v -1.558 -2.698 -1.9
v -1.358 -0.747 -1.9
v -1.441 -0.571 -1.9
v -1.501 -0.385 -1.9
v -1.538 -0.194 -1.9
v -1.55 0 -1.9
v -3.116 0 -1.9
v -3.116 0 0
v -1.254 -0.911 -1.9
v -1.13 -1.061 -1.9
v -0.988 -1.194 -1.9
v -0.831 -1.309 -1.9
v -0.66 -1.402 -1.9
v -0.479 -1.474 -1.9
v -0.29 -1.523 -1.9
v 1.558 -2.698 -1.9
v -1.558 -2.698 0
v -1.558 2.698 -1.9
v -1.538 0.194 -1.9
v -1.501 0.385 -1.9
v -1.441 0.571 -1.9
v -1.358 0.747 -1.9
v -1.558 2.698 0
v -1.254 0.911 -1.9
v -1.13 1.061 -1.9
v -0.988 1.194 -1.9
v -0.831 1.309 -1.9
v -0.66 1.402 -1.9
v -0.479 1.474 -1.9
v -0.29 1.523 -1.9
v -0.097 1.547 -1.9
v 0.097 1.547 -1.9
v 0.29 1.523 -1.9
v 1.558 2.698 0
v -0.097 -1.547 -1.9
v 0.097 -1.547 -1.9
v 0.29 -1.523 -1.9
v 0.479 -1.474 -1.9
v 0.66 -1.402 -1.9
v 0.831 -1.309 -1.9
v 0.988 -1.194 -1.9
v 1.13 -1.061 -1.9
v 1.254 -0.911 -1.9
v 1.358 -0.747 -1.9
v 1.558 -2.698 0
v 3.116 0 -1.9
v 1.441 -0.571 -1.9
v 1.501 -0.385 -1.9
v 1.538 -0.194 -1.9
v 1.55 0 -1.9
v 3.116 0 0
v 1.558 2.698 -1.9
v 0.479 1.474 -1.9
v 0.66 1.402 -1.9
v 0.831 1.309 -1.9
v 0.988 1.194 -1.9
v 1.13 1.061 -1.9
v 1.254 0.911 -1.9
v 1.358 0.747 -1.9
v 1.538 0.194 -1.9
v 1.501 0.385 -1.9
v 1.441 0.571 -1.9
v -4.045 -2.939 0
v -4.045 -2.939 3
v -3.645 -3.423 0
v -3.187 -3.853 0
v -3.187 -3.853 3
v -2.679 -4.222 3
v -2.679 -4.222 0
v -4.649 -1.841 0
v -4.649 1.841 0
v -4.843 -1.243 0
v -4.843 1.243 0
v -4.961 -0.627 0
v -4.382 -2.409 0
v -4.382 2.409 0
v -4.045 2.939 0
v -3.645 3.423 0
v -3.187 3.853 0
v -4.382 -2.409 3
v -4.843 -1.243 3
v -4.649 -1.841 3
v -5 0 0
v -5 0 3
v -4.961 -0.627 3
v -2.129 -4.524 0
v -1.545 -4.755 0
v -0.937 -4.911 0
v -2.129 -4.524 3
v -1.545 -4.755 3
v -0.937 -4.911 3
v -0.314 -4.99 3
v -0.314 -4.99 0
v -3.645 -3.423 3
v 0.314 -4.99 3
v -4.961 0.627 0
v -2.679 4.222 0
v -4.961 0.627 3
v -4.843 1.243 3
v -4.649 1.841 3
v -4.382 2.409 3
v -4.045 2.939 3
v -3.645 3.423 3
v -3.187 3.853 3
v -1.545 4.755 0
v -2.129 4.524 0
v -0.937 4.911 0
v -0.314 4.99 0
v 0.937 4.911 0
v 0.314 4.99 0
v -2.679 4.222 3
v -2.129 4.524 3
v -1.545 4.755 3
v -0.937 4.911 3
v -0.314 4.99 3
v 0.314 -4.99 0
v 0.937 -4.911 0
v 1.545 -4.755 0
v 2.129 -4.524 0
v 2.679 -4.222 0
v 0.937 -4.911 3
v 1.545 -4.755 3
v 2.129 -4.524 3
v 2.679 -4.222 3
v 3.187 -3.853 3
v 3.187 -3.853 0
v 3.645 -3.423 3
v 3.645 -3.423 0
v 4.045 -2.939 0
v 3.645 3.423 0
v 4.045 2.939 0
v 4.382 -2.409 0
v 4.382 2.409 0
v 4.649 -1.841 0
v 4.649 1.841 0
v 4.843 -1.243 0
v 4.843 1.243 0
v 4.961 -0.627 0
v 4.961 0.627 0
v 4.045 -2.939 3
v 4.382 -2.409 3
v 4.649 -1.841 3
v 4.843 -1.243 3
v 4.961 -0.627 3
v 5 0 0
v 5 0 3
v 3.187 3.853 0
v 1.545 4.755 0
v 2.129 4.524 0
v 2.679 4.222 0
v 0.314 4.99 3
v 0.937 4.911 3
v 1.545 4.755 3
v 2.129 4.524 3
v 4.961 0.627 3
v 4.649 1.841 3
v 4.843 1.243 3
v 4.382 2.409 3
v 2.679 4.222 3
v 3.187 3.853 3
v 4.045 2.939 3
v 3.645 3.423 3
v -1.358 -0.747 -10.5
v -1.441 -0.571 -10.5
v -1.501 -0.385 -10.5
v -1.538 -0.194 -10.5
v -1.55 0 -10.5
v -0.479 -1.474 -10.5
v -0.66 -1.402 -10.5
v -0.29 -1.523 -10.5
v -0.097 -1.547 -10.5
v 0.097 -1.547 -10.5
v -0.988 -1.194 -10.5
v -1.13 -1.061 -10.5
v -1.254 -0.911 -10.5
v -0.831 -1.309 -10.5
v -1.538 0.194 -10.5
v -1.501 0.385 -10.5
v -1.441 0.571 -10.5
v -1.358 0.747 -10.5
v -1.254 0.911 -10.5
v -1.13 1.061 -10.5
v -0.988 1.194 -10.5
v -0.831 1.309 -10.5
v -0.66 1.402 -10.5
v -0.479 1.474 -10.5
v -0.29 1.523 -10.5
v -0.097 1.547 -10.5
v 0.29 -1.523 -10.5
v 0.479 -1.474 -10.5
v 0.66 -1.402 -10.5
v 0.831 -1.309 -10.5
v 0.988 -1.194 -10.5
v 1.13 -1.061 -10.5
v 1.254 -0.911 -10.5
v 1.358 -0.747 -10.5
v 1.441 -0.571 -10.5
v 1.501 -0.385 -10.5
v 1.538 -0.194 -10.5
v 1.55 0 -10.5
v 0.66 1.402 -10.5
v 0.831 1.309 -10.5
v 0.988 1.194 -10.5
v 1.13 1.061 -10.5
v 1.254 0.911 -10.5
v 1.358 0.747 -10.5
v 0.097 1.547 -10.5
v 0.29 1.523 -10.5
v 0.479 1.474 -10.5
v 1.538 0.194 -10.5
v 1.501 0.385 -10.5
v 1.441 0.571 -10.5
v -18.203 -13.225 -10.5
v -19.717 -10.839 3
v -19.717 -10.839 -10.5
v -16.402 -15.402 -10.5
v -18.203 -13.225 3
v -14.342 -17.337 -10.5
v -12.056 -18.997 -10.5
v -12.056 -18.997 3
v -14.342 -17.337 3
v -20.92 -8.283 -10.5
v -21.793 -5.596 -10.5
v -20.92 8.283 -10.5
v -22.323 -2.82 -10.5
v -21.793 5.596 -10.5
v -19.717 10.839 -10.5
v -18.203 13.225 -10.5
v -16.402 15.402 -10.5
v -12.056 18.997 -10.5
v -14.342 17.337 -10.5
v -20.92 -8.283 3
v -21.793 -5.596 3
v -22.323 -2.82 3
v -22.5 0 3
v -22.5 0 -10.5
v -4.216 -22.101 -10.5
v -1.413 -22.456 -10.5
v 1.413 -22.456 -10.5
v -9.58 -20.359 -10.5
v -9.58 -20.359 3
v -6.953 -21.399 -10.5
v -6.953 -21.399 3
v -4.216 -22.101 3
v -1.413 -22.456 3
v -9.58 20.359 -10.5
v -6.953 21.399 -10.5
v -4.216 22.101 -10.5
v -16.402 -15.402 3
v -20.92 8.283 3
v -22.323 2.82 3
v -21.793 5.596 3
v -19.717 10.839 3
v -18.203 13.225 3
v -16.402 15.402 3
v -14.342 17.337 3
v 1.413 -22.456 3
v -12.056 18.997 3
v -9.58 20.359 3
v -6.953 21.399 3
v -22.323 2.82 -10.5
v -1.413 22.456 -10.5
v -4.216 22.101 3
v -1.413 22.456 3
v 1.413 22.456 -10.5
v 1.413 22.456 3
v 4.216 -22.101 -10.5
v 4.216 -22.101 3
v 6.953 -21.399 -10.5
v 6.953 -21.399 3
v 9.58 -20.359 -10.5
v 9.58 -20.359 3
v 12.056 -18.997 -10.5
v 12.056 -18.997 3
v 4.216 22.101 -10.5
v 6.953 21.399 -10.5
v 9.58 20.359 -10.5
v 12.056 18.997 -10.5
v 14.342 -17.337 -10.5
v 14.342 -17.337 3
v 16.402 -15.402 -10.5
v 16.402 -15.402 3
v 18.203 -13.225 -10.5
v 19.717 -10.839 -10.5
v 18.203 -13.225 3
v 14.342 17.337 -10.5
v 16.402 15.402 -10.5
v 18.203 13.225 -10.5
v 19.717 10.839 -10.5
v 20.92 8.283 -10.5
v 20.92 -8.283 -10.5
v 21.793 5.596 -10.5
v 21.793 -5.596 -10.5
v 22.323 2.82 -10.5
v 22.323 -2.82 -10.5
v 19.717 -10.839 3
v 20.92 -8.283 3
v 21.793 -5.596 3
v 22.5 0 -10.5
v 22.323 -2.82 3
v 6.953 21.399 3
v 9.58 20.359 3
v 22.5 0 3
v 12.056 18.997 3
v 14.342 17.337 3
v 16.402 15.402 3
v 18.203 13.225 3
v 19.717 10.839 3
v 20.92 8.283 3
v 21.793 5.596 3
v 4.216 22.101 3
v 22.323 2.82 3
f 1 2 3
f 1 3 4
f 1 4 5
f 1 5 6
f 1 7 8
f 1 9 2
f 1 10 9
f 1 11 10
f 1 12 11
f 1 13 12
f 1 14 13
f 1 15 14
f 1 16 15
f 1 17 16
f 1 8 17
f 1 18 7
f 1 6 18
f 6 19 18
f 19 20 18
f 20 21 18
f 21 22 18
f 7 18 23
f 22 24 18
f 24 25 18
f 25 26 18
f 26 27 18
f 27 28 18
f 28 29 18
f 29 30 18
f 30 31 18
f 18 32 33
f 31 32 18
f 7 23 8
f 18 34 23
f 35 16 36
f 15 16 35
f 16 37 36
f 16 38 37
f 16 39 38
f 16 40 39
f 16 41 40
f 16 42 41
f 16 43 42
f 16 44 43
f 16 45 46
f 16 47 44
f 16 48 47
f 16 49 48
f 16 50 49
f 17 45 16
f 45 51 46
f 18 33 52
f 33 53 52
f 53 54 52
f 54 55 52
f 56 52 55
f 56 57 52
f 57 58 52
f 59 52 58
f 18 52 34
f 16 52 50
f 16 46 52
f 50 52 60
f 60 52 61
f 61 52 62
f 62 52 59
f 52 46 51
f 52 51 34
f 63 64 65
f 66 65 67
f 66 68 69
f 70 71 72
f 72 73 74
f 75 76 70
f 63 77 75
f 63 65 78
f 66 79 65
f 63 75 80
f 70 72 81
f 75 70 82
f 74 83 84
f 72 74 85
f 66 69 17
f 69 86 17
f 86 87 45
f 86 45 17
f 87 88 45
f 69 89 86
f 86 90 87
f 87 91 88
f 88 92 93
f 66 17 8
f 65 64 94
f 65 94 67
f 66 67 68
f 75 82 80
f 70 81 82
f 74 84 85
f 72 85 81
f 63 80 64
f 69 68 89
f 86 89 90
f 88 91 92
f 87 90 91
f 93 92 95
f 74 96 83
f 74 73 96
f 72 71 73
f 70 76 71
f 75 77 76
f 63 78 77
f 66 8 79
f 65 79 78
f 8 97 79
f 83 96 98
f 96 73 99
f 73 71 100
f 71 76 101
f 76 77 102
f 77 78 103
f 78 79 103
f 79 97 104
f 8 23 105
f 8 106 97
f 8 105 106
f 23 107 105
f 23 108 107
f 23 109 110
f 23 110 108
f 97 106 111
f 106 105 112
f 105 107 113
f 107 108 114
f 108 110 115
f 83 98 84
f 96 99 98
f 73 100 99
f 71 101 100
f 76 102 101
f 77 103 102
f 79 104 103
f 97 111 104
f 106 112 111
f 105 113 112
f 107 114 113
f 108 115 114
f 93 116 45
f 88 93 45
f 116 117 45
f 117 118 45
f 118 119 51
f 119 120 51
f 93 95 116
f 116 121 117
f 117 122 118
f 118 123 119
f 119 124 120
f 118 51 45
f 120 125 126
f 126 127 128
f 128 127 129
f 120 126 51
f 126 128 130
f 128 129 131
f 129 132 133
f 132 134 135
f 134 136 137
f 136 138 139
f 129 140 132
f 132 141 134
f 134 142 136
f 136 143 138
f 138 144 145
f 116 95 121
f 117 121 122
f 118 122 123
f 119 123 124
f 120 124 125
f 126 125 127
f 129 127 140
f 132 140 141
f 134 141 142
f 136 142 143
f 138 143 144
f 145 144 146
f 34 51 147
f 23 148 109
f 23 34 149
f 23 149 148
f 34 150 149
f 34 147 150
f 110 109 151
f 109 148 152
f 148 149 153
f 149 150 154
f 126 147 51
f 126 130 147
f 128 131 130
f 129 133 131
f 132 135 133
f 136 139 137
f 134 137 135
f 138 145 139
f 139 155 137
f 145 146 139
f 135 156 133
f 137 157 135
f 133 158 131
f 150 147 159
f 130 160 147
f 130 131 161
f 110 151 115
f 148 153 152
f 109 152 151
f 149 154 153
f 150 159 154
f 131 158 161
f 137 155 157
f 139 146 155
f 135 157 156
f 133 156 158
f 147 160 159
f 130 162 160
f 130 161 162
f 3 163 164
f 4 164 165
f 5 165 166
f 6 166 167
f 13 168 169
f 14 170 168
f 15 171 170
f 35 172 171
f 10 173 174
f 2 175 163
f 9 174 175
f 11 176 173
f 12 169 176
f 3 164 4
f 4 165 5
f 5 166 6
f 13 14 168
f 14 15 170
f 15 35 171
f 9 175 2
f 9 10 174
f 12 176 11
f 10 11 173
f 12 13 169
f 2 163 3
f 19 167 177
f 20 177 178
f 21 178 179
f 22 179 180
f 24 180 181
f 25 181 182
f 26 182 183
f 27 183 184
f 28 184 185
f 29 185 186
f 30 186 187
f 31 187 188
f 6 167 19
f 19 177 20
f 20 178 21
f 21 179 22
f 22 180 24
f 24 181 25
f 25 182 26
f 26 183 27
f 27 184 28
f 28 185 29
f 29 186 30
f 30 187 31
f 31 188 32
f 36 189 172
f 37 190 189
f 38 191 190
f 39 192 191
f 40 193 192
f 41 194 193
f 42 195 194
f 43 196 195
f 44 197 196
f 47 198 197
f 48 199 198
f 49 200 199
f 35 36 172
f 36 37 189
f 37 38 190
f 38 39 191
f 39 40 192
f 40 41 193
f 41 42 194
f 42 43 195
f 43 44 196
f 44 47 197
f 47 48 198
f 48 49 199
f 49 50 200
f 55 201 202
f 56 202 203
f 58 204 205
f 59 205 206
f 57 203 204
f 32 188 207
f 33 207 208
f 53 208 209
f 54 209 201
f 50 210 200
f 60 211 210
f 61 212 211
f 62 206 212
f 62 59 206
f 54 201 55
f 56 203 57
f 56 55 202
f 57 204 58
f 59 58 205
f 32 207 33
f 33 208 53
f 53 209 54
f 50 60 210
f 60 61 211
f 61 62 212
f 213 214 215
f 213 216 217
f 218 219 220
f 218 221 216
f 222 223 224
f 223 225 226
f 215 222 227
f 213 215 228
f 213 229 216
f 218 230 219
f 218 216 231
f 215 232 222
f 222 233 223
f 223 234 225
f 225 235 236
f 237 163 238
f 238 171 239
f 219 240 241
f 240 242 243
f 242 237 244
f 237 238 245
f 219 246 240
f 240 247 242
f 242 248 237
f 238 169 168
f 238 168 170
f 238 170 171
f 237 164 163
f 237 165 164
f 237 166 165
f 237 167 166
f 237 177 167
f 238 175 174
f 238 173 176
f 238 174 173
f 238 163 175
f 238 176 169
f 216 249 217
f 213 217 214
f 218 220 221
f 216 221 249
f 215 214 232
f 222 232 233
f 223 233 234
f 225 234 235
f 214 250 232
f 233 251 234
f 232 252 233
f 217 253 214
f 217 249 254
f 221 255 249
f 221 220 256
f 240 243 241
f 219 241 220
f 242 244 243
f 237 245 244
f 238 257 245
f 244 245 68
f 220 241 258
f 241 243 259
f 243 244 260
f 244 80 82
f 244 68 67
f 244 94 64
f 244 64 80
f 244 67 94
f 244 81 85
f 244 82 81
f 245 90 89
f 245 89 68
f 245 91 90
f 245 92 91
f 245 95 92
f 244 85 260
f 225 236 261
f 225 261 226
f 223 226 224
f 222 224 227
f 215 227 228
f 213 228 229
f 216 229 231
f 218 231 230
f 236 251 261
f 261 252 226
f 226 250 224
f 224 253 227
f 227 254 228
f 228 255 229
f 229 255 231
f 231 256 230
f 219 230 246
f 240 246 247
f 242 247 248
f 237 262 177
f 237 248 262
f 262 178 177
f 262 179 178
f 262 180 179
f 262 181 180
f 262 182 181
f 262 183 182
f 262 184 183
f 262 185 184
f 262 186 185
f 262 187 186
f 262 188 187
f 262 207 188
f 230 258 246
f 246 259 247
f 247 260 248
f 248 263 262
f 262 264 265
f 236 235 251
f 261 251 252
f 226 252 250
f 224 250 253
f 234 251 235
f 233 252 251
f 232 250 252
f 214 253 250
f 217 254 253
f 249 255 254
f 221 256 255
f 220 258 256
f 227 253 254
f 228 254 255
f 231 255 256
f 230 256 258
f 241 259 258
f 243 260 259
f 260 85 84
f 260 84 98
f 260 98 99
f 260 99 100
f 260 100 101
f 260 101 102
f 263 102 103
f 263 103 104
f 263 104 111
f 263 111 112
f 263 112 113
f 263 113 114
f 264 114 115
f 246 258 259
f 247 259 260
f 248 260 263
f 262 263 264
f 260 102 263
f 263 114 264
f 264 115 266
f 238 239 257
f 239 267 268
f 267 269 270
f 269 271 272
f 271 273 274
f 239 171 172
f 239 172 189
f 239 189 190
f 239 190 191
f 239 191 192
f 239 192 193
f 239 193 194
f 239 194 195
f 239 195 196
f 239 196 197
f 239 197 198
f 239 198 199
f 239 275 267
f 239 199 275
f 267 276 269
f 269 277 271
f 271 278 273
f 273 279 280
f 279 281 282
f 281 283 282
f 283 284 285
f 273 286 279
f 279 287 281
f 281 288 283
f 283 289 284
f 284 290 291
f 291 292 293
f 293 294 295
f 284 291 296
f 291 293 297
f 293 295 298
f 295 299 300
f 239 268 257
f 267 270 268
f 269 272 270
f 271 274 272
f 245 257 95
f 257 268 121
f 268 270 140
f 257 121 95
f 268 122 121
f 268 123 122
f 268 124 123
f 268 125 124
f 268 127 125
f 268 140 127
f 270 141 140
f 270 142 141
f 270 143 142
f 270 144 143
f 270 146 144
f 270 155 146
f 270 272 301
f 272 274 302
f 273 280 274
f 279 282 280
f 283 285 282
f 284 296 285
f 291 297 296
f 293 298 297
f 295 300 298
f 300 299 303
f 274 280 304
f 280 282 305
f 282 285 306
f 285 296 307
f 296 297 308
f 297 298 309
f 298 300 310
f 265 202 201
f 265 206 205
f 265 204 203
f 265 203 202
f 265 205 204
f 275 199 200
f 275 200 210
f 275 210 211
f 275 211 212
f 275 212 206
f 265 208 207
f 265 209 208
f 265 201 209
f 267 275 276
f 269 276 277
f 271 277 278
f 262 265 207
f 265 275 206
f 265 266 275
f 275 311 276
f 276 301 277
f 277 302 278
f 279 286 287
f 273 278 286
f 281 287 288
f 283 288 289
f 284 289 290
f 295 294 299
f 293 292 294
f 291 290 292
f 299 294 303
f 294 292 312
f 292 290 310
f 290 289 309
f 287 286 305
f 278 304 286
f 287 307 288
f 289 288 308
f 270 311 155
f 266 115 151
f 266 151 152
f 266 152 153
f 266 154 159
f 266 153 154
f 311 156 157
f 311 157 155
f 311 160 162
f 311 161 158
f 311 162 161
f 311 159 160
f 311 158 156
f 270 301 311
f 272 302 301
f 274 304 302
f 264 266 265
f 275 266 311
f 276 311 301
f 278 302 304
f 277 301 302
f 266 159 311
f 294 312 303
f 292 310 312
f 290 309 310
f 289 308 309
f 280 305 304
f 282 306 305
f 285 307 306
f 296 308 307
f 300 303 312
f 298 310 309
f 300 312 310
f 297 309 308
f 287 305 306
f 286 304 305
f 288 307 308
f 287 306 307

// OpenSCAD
$fn = 50;

difference() {
	union() {
		translate(v = [0, 0, -10.5]) {
			cylinder(h = 13.5, r = 22.5);
		}
	}
	union() {
		translate(v = [0, 0, 0]) {
			rotate(a = [0, 0, 0]) {
				difference() {
					union() {
						translate(v = [0, 0, -1.9]) {
							linear_extrude(height = 1.9) {
								polygon(points = [[3.1158, 0.0], [1.5579000000000005, 2.698361953111554], [-1.5578999999999994, 2.6983619531115544], [-3.1158, 3.815754496783323e-16], [-1.5579000000000014, -2.6983619531115535], [1.557899999999998, -2.6983619531115552]]);
							}
						}
					}
					union();
				}
			}
		}
		#cylinder(h = 3, r = 5.0);
		#translate(v = [0, 0, -100.0]) {
			cylinder(h = 200, r = 1.55);
		}
	}
}
